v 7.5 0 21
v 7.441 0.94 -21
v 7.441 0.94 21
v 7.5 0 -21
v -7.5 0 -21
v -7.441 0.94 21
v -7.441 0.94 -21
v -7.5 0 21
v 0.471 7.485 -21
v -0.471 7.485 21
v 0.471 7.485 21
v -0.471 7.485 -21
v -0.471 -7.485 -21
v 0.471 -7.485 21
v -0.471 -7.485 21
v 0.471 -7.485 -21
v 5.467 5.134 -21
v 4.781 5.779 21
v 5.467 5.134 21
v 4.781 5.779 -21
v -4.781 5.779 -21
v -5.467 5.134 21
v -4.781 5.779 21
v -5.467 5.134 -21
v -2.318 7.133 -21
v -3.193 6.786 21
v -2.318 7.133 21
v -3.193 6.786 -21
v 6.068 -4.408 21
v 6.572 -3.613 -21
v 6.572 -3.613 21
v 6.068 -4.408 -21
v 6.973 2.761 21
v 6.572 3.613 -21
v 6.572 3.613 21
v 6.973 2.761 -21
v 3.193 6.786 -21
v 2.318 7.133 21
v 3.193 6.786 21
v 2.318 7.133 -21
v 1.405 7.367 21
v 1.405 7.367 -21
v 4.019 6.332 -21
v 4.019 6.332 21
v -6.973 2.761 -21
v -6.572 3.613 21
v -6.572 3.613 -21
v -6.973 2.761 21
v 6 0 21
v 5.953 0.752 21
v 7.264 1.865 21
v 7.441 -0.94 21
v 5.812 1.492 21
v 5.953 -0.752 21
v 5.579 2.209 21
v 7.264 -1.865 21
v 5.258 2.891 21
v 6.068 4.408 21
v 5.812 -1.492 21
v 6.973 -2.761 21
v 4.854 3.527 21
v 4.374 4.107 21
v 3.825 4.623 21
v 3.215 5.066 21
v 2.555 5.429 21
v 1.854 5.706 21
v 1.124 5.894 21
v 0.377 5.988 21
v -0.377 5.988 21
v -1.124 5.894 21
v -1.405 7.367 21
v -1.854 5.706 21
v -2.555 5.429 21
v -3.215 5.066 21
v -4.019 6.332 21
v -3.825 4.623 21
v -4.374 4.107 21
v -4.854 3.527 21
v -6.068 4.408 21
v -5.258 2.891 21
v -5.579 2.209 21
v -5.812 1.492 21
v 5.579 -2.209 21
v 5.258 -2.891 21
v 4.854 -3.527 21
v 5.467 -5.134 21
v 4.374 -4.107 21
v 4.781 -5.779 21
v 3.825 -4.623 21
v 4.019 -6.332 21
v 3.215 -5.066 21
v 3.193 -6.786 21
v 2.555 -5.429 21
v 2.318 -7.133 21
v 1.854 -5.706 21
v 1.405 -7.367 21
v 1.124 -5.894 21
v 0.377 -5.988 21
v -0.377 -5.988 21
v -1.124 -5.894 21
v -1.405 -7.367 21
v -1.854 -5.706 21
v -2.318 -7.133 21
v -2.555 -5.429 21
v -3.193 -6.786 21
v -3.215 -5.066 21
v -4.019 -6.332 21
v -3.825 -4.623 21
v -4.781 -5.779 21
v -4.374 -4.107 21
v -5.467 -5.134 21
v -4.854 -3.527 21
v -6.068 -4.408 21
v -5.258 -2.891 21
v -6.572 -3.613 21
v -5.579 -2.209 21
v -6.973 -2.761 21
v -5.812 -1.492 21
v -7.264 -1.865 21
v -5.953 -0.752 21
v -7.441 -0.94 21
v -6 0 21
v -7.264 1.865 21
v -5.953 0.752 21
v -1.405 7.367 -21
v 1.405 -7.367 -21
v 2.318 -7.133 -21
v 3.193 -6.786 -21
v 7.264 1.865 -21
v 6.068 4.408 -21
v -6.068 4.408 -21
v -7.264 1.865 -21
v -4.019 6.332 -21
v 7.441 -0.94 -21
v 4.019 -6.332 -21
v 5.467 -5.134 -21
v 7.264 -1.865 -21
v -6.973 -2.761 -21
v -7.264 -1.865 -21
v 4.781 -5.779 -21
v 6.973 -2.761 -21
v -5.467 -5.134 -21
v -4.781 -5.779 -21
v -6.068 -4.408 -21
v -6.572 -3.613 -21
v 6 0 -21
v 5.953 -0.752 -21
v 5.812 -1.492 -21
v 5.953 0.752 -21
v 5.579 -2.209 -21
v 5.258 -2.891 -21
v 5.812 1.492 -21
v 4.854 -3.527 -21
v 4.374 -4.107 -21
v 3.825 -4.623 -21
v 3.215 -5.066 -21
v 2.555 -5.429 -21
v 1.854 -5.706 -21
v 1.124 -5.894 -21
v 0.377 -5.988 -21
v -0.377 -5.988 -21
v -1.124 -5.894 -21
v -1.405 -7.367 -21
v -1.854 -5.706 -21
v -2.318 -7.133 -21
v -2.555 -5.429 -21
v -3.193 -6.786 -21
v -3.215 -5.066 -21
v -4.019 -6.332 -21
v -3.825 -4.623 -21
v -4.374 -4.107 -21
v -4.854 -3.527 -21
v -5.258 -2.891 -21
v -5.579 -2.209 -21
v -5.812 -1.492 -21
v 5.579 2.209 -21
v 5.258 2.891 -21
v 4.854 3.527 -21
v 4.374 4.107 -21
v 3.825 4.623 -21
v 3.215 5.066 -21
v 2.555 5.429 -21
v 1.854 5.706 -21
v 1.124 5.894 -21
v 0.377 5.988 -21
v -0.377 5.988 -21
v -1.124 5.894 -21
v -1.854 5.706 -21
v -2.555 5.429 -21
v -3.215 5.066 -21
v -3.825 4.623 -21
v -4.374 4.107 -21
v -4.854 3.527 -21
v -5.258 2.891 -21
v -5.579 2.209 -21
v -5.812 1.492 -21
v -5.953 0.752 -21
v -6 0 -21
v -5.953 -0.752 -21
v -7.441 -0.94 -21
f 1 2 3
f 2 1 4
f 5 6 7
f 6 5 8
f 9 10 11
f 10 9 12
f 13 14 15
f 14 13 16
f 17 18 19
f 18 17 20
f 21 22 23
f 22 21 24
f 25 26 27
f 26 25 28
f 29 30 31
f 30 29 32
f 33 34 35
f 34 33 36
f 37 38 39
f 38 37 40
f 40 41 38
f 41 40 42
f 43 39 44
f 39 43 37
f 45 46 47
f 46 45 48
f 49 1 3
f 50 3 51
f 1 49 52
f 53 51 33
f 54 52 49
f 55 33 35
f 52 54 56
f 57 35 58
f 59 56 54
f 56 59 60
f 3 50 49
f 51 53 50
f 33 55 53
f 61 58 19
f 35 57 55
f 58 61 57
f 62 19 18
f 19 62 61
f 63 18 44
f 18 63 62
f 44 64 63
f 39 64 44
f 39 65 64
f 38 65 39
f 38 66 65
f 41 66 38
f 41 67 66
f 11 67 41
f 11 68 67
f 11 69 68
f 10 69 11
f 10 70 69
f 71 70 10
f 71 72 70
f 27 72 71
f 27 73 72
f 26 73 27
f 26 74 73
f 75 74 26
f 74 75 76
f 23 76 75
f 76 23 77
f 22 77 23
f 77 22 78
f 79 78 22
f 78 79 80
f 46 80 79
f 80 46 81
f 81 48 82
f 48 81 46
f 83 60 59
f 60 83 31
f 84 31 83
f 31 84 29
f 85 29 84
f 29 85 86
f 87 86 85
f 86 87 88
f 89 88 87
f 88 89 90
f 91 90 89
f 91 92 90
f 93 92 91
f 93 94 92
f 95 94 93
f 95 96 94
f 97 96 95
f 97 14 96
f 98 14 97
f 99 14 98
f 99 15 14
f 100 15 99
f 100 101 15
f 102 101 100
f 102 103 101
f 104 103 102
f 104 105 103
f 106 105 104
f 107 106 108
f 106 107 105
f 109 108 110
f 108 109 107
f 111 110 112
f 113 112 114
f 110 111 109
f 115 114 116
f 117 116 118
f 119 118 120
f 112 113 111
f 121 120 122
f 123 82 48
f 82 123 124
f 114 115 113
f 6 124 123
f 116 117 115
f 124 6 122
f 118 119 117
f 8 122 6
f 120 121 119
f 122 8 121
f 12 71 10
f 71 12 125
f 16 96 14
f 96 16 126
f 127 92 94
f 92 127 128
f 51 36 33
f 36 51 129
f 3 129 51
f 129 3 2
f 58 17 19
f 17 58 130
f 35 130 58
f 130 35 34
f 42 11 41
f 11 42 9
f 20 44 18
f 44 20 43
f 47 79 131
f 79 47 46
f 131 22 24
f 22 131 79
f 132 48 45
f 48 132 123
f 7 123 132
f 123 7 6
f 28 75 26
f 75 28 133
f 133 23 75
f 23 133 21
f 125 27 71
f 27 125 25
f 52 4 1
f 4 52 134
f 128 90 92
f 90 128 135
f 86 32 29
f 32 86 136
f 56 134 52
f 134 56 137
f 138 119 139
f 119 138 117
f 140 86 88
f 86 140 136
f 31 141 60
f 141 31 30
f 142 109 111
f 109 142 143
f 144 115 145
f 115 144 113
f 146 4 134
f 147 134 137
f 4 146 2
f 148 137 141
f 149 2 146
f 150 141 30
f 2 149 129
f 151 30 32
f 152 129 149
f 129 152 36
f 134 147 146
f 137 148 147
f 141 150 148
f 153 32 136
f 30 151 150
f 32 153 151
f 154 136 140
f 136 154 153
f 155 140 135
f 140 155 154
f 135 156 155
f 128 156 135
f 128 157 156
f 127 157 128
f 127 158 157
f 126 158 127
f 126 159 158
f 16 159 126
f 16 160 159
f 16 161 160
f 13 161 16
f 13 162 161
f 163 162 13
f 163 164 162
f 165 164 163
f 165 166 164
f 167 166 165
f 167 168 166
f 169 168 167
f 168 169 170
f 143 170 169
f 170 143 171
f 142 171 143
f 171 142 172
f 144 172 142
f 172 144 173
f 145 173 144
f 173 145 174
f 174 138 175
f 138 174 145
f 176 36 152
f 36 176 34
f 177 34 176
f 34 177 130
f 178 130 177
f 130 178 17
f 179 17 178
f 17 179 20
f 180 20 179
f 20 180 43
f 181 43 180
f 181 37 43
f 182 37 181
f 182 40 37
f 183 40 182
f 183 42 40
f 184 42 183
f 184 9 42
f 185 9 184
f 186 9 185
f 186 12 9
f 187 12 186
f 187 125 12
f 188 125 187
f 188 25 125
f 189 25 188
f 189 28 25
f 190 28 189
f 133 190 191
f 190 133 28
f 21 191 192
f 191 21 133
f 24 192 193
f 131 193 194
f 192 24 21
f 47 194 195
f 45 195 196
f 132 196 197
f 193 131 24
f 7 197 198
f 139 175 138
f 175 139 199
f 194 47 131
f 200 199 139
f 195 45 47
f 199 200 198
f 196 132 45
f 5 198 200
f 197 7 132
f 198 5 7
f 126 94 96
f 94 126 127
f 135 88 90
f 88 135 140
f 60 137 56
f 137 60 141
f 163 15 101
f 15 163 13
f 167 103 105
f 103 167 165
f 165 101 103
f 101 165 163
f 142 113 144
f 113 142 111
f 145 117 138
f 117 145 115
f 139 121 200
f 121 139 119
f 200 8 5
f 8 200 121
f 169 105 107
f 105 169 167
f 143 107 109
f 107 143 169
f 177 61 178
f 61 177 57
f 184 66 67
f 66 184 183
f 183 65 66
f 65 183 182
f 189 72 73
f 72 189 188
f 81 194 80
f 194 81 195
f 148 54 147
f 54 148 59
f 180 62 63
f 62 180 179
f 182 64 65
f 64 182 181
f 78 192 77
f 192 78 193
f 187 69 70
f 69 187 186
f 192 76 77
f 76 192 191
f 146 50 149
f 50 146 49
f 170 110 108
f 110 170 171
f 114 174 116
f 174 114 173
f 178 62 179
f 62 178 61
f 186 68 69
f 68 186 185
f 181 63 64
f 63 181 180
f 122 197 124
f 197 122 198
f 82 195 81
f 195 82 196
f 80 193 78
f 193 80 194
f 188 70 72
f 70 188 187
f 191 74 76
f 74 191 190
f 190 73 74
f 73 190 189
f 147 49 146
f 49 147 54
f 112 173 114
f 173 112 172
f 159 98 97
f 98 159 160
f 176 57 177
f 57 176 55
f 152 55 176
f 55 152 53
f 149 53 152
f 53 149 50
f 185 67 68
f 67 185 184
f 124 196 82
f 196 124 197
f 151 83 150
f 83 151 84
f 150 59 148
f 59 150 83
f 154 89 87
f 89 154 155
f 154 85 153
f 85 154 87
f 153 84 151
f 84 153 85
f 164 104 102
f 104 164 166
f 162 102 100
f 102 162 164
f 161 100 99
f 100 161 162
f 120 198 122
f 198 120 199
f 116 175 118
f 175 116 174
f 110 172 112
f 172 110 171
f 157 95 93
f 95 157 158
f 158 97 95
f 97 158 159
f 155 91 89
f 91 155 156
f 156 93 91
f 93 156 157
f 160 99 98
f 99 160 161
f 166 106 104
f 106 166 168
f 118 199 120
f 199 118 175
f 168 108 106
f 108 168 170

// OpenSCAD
$fn = 50;


difference() {
	union() {
		translate(v = [0, 0, -21.0000000000]) {
			cylinder(h = 42, r = 7.5000000000);
		}
	}
	union() {
		translate(v = [0, 0, -100.0000000000]) {
			cylinder(h = 200, r = 6);
		}
	}
}
